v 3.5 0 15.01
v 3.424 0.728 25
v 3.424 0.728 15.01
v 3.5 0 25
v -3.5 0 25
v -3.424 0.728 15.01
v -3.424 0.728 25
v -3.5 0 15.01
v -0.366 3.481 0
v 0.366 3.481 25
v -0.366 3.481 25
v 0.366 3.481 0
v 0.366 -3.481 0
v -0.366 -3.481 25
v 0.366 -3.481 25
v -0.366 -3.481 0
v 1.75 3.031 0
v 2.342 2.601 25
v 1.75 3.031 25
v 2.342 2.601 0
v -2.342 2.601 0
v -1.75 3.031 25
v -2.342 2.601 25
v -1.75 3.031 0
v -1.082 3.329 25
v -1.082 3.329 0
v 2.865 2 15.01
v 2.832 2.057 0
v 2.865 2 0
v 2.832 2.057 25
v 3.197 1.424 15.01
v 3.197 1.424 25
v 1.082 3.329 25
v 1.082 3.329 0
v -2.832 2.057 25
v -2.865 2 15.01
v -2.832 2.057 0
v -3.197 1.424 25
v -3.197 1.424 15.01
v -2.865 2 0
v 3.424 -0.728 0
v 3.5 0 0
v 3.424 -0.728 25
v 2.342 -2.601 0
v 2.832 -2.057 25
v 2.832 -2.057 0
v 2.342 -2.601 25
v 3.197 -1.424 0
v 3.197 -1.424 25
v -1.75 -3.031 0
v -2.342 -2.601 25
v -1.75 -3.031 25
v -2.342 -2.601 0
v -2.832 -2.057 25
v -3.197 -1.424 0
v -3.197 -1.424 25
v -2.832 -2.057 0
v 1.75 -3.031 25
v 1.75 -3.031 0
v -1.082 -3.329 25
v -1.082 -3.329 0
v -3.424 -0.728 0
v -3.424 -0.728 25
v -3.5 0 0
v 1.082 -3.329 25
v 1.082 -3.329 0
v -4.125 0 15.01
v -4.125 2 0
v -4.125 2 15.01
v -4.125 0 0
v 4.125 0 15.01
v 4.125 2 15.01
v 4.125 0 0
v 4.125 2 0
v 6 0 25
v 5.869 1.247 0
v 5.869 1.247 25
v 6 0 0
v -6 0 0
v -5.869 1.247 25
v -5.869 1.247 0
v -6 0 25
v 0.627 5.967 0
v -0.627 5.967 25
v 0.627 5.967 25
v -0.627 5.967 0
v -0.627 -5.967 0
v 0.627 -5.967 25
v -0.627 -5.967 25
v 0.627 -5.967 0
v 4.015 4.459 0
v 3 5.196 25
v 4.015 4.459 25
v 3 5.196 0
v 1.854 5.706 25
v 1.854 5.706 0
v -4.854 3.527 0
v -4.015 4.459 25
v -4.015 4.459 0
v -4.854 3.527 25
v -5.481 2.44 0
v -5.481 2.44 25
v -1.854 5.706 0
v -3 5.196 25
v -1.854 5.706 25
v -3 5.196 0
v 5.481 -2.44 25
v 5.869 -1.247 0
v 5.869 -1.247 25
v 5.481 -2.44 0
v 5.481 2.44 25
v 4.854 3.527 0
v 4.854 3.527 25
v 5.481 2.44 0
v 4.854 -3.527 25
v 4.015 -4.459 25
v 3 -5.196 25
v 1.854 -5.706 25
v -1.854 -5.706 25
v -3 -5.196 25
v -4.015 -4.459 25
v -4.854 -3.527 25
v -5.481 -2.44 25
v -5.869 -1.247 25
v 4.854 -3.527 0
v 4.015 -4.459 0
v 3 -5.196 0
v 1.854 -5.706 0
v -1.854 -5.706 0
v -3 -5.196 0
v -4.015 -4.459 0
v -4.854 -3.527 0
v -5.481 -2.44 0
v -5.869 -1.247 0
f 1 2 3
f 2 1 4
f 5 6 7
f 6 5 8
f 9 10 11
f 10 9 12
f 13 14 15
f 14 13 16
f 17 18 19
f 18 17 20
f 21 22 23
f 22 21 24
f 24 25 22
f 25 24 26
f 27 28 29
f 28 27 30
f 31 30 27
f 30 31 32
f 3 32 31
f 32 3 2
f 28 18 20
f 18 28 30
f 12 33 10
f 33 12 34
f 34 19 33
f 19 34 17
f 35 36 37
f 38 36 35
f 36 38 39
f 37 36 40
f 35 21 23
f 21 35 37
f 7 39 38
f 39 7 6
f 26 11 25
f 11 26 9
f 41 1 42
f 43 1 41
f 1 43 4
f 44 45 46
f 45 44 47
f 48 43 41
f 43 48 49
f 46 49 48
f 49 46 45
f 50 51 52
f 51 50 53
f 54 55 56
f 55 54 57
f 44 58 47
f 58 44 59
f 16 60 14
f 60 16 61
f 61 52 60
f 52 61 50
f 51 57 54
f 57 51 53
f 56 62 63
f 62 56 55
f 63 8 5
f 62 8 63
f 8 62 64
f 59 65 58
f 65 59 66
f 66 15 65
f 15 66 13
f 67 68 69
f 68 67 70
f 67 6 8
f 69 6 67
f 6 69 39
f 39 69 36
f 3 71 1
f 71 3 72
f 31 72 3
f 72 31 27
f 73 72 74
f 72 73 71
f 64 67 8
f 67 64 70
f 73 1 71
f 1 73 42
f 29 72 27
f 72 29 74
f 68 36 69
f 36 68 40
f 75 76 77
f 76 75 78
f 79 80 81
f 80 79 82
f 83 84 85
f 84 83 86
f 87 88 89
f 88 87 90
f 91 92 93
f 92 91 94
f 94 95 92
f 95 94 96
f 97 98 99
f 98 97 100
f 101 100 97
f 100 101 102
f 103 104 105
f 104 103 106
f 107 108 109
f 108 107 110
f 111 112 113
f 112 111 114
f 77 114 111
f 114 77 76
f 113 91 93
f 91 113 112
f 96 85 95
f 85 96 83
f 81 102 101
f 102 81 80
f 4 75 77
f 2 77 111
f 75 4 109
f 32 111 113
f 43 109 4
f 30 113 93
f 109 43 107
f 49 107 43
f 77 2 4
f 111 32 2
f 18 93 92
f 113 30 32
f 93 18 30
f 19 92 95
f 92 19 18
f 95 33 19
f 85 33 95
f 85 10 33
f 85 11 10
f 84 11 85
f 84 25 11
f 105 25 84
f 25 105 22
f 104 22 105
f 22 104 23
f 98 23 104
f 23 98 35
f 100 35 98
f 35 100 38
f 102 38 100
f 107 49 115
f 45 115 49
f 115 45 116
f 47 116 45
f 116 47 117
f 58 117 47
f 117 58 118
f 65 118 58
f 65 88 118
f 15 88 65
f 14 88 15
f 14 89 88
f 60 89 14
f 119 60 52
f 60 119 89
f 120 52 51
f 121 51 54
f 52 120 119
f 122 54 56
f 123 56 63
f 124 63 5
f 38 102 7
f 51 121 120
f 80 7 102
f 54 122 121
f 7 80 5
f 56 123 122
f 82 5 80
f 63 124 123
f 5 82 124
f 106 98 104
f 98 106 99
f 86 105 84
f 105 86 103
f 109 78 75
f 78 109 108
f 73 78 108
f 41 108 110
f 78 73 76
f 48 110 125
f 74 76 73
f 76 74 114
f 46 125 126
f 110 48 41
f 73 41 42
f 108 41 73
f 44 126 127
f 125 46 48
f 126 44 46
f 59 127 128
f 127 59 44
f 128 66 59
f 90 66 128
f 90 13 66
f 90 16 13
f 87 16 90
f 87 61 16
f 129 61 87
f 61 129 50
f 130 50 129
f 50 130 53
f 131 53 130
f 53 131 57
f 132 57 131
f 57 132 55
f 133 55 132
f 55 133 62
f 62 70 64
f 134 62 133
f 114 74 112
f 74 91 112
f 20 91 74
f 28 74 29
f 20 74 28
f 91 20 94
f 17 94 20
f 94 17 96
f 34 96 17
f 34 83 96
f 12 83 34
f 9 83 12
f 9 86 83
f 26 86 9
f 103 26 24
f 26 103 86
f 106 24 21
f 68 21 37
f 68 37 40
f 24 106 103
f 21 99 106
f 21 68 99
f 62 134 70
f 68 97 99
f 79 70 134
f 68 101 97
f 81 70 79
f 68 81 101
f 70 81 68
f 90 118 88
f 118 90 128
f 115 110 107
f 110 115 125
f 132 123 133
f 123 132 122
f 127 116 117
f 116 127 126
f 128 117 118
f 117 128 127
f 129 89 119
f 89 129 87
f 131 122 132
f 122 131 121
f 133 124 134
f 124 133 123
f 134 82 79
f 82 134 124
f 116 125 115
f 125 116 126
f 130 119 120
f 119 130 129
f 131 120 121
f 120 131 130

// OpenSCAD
laserCylinderCutoutRadius = 3.5;
laserTubeLength = 25;

laserMount();

module laserMount()
{
	difference()
	{
		laserTube();
		
		laserCutout();
	}
}

/**
 * This is the space for the laser that is cut out of laserTube().
 */
module laserCutout()
{
	union()
	{
		height = laserTubeLength + 0.02;
		translate([0,0,-0.01])
		cylinder(h=height, r=laserCylinderCutoutRadius, $fn=30);
	
		// this is the rectangular cut out for the laser's PCB 
		cubeHeight = height - 10.0;
		translateZ = cubeHeight / 2.0 - 0.01;
		
		cubeSizeX = 8.25; // this is how deep the rectangle cutout goes into the laster tube
		cubeTranslateY = 1;
		
		color("green")
		translate([0,cubeTranslateY,translateZ])
		cube([cubeSizeX, 2, cubeHeight], center=true);
	}
}

/**
 * This is the tube that holds the laser module.
 */
module laserTube()
{
	height = laserTubeLength;
	radius = laserCylinderCutoutRadius + 2.50;
	cylinder(h=height, r=radius, $fn=30);
}
